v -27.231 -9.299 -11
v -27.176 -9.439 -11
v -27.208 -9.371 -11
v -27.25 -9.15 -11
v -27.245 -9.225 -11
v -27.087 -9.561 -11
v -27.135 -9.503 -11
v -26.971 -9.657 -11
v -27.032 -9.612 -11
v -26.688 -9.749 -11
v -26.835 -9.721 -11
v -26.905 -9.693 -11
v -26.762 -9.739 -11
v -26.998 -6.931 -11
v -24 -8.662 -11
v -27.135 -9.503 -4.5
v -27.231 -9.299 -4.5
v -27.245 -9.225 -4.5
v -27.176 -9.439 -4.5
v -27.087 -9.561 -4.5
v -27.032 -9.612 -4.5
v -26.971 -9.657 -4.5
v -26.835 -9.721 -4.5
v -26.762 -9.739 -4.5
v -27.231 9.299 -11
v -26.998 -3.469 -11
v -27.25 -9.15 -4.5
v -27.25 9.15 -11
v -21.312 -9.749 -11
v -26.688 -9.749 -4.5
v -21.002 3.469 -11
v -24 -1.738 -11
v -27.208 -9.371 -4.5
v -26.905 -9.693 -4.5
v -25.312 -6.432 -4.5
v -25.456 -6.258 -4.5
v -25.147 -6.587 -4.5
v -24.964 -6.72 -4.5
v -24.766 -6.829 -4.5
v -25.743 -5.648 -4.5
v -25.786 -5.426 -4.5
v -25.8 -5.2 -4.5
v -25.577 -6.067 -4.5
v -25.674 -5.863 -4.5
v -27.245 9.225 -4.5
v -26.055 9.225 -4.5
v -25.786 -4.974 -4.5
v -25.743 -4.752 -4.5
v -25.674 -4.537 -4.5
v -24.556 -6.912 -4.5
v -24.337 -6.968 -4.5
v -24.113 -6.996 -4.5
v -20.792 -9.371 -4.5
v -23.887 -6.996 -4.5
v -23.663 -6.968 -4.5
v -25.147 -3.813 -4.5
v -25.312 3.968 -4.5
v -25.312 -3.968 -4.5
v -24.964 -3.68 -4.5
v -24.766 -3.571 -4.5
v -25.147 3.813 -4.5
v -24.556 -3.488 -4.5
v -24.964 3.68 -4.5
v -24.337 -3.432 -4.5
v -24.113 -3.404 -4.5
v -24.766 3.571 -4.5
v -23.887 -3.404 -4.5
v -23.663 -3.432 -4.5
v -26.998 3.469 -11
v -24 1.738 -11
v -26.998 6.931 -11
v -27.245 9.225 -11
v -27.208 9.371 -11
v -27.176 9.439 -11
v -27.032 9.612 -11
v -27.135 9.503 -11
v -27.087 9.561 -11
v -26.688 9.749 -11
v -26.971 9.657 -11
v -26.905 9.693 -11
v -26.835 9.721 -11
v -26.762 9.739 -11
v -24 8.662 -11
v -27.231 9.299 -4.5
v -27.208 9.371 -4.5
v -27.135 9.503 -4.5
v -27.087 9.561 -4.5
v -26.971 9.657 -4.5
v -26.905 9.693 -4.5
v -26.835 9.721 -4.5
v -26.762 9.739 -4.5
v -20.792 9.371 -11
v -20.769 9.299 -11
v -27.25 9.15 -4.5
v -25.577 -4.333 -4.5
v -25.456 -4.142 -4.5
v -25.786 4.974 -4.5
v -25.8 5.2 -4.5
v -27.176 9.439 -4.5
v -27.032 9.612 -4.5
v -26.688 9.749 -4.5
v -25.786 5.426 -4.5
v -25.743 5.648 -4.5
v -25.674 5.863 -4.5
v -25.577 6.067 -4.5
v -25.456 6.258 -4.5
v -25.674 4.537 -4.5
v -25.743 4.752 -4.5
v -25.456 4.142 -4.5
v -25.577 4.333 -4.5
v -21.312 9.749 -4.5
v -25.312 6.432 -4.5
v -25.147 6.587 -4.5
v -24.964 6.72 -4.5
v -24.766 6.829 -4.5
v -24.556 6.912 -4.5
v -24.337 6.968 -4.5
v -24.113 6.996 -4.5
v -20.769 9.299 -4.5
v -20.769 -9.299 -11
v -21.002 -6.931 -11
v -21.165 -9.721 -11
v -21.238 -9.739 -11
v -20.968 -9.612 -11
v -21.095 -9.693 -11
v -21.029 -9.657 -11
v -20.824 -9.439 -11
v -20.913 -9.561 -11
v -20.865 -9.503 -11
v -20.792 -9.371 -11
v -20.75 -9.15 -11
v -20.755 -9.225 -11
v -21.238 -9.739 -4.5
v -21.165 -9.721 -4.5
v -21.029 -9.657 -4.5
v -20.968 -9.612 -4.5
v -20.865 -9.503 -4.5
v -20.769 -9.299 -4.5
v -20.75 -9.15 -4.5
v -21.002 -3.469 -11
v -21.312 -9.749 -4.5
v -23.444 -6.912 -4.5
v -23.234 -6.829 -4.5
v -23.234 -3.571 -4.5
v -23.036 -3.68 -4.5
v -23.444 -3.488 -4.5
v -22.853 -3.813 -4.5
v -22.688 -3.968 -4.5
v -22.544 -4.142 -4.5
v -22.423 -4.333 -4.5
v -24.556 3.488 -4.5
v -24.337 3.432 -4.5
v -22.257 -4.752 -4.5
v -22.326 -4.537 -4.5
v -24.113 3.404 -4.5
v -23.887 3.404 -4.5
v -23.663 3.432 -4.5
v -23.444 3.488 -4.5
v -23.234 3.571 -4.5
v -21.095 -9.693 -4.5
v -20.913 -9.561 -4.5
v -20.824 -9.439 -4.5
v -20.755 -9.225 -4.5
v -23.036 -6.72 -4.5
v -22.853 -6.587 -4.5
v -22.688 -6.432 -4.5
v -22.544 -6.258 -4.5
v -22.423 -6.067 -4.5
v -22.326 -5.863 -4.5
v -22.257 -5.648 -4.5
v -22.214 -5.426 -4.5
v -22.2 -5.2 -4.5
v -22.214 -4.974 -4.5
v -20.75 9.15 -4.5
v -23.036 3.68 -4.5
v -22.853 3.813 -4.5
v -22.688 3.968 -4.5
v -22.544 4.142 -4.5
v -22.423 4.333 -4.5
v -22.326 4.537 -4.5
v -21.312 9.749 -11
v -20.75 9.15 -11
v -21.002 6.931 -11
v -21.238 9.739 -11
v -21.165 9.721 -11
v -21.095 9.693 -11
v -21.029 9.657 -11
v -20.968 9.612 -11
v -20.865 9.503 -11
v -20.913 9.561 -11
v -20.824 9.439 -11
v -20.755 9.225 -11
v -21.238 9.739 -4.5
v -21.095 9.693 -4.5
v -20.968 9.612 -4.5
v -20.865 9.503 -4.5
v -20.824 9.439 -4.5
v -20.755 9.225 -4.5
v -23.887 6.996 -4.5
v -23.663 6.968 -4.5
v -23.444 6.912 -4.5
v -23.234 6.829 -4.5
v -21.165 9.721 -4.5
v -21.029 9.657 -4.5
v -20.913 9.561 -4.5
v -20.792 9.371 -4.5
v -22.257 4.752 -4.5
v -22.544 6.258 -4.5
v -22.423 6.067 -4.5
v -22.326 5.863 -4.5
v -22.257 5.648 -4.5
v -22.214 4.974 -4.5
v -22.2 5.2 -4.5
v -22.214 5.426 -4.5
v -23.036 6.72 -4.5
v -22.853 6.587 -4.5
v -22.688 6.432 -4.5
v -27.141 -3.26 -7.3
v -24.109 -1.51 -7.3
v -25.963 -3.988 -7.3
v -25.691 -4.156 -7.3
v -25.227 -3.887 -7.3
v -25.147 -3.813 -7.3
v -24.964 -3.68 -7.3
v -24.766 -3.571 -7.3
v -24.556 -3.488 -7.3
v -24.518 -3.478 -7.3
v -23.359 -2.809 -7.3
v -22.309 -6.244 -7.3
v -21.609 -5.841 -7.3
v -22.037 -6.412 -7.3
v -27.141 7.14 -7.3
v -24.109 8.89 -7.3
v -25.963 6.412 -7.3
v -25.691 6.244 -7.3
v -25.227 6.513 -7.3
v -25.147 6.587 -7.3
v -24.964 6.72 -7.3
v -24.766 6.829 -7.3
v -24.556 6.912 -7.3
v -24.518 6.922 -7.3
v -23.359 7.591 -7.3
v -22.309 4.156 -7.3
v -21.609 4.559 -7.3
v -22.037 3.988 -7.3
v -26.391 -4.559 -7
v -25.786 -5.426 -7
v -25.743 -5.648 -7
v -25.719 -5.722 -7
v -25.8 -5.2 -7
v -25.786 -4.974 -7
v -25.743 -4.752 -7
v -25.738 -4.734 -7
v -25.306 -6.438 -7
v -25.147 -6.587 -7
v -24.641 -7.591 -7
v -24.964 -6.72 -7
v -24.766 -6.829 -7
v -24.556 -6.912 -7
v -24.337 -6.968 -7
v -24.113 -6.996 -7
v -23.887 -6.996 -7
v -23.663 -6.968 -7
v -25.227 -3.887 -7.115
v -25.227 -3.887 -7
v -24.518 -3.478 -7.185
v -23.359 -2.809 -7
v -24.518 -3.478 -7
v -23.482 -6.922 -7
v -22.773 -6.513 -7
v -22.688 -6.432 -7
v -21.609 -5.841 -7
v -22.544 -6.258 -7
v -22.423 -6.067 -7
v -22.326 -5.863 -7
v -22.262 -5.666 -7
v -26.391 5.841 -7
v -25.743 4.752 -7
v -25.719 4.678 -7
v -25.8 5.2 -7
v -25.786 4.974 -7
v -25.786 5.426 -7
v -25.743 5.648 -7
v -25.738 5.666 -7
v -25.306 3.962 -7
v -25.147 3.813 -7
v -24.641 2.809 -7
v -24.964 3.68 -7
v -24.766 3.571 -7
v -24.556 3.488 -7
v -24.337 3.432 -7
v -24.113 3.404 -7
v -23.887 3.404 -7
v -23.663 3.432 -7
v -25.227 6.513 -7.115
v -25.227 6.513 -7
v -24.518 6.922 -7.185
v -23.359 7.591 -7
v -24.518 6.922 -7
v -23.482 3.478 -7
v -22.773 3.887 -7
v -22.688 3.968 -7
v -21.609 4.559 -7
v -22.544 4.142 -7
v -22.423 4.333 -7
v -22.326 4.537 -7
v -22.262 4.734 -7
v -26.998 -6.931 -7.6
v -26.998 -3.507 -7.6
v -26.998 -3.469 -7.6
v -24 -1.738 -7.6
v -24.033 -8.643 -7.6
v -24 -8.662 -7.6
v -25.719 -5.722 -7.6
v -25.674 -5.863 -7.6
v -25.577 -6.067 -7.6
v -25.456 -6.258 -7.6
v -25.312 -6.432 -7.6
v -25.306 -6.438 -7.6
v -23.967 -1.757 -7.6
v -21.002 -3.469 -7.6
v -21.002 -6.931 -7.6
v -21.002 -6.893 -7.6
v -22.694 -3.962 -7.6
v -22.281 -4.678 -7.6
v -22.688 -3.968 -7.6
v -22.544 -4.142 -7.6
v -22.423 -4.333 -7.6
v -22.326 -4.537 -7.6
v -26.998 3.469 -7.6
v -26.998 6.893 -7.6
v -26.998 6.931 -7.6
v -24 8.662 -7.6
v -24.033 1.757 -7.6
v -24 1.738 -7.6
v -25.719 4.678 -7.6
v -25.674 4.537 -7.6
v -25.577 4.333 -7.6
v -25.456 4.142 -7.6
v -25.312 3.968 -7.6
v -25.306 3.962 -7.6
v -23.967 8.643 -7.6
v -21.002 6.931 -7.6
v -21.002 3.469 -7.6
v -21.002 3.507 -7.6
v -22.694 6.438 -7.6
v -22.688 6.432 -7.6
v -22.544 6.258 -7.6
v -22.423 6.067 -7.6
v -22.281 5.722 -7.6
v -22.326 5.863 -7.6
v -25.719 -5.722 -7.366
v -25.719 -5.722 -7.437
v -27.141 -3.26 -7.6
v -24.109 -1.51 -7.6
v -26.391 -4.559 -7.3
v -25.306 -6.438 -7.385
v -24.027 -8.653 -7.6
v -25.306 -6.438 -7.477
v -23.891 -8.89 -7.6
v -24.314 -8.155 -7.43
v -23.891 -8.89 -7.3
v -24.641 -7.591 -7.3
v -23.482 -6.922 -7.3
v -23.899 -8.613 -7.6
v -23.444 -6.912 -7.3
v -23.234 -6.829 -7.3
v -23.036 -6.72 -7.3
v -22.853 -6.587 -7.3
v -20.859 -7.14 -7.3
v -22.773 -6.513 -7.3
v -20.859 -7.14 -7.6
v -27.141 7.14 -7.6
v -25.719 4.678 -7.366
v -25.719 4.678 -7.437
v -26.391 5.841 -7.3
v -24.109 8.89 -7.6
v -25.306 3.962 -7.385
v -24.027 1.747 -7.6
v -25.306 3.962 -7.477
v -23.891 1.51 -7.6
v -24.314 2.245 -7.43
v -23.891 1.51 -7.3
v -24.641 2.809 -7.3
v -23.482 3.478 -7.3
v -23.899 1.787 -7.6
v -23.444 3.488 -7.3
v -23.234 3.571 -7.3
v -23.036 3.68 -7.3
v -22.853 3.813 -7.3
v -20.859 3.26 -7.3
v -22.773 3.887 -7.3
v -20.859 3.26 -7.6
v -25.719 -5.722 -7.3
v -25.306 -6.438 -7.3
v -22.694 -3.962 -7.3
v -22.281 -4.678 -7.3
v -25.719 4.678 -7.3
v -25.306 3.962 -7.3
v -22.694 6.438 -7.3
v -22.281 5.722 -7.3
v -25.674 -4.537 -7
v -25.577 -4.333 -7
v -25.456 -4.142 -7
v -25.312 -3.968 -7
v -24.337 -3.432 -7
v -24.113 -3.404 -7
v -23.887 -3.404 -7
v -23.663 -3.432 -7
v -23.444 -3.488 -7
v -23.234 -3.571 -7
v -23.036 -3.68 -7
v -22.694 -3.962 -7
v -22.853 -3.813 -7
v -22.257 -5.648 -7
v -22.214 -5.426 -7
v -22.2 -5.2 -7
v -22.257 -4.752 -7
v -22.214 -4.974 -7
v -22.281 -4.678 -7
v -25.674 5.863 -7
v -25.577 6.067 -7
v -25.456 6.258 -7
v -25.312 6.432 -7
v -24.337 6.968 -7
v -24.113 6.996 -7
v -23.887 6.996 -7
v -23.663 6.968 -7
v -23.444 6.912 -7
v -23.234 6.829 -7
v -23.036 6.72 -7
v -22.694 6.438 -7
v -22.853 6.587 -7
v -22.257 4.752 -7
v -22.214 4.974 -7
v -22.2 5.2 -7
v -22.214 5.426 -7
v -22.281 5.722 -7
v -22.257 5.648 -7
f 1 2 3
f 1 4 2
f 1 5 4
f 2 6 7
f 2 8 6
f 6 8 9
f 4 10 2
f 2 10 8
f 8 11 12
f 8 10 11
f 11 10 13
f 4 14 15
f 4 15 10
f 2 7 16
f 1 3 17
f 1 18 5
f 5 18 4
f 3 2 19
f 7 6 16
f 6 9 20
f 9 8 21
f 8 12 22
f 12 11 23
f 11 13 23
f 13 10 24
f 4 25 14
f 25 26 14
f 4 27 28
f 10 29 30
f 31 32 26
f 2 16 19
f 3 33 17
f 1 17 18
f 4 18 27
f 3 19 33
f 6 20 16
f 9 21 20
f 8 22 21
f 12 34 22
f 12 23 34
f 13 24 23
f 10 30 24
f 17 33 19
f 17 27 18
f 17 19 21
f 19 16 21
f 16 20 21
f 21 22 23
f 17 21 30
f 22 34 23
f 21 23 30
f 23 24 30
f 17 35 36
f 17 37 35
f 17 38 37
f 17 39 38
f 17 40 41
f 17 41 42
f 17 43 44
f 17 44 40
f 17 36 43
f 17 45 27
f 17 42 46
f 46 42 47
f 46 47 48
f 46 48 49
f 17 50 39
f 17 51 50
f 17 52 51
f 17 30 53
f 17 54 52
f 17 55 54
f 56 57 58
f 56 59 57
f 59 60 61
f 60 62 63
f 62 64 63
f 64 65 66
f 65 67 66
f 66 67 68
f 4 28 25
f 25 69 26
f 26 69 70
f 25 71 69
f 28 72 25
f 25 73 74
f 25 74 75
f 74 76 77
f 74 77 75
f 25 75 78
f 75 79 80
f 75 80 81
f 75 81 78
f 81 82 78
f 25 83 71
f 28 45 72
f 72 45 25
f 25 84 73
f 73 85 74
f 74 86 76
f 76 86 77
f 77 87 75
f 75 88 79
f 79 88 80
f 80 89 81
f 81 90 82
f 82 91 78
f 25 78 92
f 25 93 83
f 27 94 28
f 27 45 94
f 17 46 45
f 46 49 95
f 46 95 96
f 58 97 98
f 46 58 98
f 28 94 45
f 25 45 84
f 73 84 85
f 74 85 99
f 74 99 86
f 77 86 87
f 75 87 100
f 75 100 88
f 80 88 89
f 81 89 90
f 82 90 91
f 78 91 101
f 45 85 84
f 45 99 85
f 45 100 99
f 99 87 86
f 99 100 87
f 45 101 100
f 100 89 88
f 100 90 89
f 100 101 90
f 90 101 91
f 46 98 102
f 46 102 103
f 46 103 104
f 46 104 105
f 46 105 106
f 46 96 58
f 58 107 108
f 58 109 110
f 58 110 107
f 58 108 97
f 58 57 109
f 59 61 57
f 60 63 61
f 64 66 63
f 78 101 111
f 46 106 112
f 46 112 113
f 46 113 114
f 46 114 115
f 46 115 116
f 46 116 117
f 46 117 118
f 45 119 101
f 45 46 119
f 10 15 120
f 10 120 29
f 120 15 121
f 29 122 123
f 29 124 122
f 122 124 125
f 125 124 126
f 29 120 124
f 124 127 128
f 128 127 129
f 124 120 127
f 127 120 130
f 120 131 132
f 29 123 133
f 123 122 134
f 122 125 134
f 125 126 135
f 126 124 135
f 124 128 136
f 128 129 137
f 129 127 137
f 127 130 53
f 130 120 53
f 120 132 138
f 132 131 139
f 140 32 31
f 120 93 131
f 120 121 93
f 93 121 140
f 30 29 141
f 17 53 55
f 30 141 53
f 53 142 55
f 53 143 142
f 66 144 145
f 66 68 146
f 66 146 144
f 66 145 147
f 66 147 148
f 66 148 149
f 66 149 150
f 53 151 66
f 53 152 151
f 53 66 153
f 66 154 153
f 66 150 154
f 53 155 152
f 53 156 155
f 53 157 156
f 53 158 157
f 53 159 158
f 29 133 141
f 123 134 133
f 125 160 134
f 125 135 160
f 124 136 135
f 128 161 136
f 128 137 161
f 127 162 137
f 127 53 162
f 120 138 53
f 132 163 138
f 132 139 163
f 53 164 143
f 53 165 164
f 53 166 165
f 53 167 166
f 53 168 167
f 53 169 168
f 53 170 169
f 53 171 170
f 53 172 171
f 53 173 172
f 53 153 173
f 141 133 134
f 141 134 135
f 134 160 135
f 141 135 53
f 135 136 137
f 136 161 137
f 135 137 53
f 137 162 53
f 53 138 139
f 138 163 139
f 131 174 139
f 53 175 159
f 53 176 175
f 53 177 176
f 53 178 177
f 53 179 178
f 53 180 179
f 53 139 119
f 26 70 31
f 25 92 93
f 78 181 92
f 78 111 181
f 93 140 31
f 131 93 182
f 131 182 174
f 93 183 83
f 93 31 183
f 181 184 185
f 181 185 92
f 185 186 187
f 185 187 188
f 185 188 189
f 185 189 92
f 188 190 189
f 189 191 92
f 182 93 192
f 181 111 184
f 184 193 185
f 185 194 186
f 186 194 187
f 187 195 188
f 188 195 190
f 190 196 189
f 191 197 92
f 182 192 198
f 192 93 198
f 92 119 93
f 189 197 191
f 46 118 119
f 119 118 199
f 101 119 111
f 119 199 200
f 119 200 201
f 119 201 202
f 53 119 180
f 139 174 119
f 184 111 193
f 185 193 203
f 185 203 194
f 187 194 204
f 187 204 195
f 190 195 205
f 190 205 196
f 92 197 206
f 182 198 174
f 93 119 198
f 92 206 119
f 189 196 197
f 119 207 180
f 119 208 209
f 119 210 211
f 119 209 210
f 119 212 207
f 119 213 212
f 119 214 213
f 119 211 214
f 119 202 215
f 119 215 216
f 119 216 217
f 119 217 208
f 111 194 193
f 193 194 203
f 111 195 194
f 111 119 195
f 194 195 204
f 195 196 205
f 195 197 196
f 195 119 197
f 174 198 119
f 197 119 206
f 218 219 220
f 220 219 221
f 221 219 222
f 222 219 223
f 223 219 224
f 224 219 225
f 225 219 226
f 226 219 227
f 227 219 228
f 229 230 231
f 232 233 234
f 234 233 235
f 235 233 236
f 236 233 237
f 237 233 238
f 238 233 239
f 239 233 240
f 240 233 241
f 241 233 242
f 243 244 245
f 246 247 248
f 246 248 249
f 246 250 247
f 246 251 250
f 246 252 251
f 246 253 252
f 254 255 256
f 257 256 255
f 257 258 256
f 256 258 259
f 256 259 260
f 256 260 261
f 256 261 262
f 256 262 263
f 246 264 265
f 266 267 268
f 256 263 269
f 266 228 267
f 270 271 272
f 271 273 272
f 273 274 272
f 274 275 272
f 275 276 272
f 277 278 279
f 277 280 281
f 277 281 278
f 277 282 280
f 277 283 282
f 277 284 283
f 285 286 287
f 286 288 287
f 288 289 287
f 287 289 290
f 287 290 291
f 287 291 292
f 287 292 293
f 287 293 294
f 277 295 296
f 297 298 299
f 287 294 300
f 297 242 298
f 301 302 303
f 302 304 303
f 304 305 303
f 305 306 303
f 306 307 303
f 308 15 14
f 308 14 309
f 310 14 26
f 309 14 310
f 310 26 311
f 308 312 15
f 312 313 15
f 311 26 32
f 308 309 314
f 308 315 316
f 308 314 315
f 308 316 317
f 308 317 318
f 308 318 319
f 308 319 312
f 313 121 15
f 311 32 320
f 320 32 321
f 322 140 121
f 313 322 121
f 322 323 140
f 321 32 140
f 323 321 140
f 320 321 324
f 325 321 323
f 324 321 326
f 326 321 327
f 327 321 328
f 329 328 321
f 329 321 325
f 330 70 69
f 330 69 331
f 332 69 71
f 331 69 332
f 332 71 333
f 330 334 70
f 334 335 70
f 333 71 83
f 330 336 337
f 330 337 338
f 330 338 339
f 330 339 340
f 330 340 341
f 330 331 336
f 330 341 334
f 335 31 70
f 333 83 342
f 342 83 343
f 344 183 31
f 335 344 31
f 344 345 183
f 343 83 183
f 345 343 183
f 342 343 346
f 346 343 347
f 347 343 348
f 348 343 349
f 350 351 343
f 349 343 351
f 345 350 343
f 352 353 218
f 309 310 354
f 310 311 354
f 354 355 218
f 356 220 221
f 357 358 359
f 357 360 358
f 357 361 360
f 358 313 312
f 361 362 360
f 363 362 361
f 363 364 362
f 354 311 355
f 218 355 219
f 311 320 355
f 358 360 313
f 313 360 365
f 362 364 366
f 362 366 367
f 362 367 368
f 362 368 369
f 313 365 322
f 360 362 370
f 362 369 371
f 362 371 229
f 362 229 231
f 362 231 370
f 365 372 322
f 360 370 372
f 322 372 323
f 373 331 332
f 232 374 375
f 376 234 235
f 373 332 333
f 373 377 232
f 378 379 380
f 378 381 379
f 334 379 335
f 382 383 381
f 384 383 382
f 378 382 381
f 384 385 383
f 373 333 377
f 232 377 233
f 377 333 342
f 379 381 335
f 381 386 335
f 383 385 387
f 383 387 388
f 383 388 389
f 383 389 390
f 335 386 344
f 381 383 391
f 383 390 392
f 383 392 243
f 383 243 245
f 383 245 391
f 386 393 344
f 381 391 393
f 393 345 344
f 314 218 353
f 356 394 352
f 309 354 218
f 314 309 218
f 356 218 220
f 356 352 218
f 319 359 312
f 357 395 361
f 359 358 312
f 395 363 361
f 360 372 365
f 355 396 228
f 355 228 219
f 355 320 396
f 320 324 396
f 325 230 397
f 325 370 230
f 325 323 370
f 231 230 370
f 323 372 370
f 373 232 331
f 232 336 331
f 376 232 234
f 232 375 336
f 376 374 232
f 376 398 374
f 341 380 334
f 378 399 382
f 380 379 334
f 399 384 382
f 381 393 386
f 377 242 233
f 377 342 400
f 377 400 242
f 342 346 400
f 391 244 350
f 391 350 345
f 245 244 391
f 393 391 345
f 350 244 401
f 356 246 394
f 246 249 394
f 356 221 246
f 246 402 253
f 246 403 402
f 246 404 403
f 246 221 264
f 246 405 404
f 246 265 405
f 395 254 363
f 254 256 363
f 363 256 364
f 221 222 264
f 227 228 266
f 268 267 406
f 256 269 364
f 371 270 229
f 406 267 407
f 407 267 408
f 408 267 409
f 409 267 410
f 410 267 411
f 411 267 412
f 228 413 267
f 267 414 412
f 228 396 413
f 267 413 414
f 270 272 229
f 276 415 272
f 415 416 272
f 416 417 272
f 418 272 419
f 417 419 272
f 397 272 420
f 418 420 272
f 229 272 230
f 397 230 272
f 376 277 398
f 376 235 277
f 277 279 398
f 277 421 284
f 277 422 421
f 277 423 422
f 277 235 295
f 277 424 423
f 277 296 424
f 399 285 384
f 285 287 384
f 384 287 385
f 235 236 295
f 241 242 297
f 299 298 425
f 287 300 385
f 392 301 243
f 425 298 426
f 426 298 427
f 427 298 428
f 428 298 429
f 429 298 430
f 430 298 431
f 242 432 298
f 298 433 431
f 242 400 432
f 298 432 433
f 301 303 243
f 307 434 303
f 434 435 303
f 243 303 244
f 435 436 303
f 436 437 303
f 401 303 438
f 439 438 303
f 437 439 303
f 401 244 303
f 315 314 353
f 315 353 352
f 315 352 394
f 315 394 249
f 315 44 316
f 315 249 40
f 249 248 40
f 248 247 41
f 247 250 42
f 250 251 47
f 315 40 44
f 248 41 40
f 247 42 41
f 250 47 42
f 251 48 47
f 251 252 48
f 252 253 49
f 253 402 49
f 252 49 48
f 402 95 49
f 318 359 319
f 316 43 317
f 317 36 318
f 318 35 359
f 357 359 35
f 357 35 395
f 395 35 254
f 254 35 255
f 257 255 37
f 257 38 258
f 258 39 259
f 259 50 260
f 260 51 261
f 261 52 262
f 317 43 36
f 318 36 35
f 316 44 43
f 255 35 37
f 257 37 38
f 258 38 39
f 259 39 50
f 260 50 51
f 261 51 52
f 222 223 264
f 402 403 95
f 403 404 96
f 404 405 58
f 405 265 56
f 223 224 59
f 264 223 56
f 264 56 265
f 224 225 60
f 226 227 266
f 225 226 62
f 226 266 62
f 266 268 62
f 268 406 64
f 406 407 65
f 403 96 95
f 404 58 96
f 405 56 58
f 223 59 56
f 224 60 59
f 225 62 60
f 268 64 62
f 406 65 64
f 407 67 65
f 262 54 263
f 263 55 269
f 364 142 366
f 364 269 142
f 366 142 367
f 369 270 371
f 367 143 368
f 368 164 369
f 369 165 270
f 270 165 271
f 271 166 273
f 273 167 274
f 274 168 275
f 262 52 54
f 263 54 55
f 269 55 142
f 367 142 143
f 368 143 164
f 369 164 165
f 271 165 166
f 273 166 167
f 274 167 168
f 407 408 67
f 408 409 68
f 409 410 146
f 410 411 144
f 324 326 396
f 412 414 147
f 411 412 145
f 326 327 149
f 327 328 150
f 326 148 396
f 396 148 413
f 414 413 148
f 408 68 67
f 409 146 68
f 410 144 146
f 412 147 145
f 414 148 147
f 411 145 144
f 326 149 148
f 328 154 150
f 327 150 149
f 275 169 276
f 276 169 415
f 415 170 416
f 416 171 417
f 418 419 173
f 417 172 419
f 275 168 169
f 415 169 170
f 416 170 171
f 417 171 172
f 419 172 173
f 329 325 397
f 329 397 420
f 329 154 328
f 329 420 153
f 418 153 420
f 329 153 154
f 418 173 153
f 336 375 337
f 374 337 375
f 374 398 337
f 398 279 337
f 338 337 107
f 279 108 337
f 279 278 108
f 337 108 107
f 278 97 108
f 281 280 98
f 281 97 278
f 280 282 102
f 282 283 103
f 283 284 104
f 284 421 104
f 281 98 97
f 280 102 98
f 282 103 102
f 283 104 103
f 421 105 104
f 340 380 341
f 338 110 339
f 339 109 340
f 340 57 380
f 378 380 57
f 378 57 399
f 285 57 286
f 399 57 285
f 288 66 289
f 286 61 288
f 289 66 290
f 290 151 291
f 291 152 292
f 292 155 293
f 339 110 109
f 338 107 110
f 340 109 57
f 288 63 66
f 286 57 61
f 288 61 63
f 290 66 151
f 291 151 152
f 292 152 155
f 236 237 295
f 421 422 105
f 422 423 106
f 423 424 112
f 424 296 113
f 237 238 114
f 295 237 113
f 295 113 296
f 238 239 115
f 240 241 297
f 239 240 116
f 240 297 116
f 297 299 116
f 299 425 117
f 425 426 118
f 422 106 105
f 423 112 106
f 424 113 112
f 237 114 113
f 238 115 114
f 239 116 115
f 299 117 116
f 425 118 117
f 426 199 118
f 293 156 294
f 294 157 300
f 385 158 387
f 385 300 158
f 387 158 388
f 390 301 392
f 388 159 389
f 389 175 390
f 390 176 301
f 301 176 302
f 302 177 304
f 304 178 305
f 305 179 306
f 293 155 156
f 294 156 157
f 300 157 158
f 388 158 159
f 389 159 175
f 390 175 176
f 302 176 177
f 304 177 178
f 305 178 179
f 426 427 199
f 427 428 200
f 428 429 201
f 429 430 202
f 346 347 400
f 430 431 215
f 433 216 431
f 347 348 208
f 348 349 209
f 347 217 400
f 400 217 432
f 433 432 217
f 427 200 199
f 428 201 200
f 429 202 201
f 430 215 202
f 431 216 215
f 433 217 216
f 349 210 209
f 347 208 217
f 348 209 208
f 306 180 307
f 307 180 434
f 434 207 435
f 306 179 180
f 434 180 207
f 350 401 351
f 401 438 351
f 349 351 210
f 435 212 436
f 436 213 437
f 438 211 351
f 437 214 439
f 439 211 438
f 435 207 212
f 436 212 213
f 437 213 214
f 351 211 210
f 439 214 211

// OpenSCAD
$fn = 50;

difference() {
	union() {
		translate(v = [-24, 0, -11.0]) {
			hull() {
				translate(v = [-2.65, 9.15, 0]) {
					cylinder(h = 6.5, r = 0.6);
				}
				translate(v = [2.65, 9.15, 0]) {
					cylinder(h = 6.5, r = 0.6);
				}
				translate(v = [-2.65, -9.15, 0]) {
					cylinder(h = 6.5, r = 0.6);
				}
				translate(v = [2.65, -9.15, 0]) {
					cylinder(h = 6.5, r = 0.6);
				}
			}
		}
	}
	union() {
		translate(v = [-24, -5.2, -7.6]) {
			rotate(a = [180, 0, 30]) {
				difference() {
					union() {
						translate(v = [-1.75, -3.25, -0.3]) {
							cube(size = [3.5, 6.5, 0.3]);
						}
						translate(v = [-1.75, -1.75, -0.6]) {
							cube(size = [3.5, 3.5, 0.3]);
						}
						translate(v = [-1.75, -3.25, 53.4]) {
							cube(size = [3.5, 6.5, 0.3]);
						}
						translate(v = [-1.75, -1.75, 53.699999999999996]) {
							cube(size = [3.5, 3.5, 0.3]);
						}
						linear_extrude(height = 103.4) {
							polygon(points = [[3.4619999999999997, 0.0], [1.7310000000000003, 2.9981799479017264], [-1.7309999999999992, 2.9981799479017264], [-3.4619999999999997, 4.2397272186481365e-16], [-1.7310000000000014, -2.998179947901726], [1.7309999999999977, -2.9981799479017277]]);
						}
						translate(v = [-1.75, -3.25, -0.3]) {
							cube(size = [3.5, 6.5, 0.3]);
						}
						translate(v = [-1.75, -1.75, -0.6]) {
							cube(size = [3.5, 3.5, 0.3]);
						}
						translate(v = [-1.75, -3.25, 103.4]) {
							cube(size = [3.5, 6.5, 0.3]);
						}
						translate(v = [-1.75, -1.75, 103.7]) {
							cube(size = [3.5, 3.5, 0.3]);
						}
						translate(v = [-1.75, -3.25, -0.3]) {
							cube(size = [3.5, 6.5, 0.3]);
						}
						translate(v = [-1.75, -1.75, -0.6]) {
							cube(size = [3.5, 3.5, 0.3]);
						}
						translate(v = [-1.75, -3.25, 153.4]) {
							cube(size = [3.5, 6.5, 0.3]);
						}
						translate(v = [-1.75, -1.75, 153.70000000000002]) {
							cube(size = [3.5, 3.5, 0.3]);
						}
					}
					union();
				}
			}
		}
		translate(v = [-24, 5.2, -7.6]) {
			rotate(a = [180, 0, 30]) {
				difference() {
					union() {
						translate(v = [-1.75, -3.25, -0.3]) {
							cube(size = [3.5, 6.5, 0.3]);
						}
						translate(v = [-1.75, -1.75, -0.6]) {
							cube(size = [3.5, 3.5, 0.3]);
						}
						translate(v = [-1.75, -3.25, 53.4]) {
							cube(size = [3.5, 6.5, 0.3]);
						}
						translate(v = [-1.75, -1.75, 53.699999999999996]) {
							cube(size = [3.5, 3.5, 0.3]);
						}
						linear_extrude(height = 103.4) {
							polygon(points = [[3.4619999999999997, 0.0], [1.7310000000000003, 2.9981799479017264], [-1.7309999999999992, 2.9981799479017264], [-3.4619999999999997, 4.2397272186481365e-16], [-1.7310000000000014, -2.998179947901726], [1.7309999999999977, -2.9981799479017277]]);
						}
						translate(v = [-1.75, -3.25, -0.3]) {
							cube(size = [3.5, 6.5, 0.3]);
						}
						translate(v = [-1.75, -1.75, -0.6]) {
							cube(size = [3.5, 3.5, 0.3]);
						}
						translate(v = [-1.75, -3.25, 103.4]) {
							cube(size = [3.5, 6.5, 0.3]);
						}
						translate(v = [-1.75, -1.75, 103.7]) {
							cube(size = [3.5, 3.5, 0.3]);
						}
						translate(v = [-1.75, -3.25, -0.3]) {
							cube(size = [3.5, 6.5, 0.3]);
						}
						translate(v = [-1.75, -1.75, -0.6]) {
							cube(size = [3.5, 3.5, 0.3]);
						}
						translate(v = [-1.75, -3.25, 153.4]) {
							cube(size = [3.5, 6.5, 0.3]);
						}
						translate(v = [-1.75, -1.75, 153.70000000000002]) {
							cube(size = [3.5, 3.5, 0.3]);
						}
					}
					union();
				}
			}
		}
		translate(v = [-24, -5.2, -12.0]) {
			cylinder(h = 8.5, r = 1.8);
		}
		translate(v = [-24, 5.2, -12.0]) {
			cylinder(h = 8.5, r = 1.8);
		}
	}
}
